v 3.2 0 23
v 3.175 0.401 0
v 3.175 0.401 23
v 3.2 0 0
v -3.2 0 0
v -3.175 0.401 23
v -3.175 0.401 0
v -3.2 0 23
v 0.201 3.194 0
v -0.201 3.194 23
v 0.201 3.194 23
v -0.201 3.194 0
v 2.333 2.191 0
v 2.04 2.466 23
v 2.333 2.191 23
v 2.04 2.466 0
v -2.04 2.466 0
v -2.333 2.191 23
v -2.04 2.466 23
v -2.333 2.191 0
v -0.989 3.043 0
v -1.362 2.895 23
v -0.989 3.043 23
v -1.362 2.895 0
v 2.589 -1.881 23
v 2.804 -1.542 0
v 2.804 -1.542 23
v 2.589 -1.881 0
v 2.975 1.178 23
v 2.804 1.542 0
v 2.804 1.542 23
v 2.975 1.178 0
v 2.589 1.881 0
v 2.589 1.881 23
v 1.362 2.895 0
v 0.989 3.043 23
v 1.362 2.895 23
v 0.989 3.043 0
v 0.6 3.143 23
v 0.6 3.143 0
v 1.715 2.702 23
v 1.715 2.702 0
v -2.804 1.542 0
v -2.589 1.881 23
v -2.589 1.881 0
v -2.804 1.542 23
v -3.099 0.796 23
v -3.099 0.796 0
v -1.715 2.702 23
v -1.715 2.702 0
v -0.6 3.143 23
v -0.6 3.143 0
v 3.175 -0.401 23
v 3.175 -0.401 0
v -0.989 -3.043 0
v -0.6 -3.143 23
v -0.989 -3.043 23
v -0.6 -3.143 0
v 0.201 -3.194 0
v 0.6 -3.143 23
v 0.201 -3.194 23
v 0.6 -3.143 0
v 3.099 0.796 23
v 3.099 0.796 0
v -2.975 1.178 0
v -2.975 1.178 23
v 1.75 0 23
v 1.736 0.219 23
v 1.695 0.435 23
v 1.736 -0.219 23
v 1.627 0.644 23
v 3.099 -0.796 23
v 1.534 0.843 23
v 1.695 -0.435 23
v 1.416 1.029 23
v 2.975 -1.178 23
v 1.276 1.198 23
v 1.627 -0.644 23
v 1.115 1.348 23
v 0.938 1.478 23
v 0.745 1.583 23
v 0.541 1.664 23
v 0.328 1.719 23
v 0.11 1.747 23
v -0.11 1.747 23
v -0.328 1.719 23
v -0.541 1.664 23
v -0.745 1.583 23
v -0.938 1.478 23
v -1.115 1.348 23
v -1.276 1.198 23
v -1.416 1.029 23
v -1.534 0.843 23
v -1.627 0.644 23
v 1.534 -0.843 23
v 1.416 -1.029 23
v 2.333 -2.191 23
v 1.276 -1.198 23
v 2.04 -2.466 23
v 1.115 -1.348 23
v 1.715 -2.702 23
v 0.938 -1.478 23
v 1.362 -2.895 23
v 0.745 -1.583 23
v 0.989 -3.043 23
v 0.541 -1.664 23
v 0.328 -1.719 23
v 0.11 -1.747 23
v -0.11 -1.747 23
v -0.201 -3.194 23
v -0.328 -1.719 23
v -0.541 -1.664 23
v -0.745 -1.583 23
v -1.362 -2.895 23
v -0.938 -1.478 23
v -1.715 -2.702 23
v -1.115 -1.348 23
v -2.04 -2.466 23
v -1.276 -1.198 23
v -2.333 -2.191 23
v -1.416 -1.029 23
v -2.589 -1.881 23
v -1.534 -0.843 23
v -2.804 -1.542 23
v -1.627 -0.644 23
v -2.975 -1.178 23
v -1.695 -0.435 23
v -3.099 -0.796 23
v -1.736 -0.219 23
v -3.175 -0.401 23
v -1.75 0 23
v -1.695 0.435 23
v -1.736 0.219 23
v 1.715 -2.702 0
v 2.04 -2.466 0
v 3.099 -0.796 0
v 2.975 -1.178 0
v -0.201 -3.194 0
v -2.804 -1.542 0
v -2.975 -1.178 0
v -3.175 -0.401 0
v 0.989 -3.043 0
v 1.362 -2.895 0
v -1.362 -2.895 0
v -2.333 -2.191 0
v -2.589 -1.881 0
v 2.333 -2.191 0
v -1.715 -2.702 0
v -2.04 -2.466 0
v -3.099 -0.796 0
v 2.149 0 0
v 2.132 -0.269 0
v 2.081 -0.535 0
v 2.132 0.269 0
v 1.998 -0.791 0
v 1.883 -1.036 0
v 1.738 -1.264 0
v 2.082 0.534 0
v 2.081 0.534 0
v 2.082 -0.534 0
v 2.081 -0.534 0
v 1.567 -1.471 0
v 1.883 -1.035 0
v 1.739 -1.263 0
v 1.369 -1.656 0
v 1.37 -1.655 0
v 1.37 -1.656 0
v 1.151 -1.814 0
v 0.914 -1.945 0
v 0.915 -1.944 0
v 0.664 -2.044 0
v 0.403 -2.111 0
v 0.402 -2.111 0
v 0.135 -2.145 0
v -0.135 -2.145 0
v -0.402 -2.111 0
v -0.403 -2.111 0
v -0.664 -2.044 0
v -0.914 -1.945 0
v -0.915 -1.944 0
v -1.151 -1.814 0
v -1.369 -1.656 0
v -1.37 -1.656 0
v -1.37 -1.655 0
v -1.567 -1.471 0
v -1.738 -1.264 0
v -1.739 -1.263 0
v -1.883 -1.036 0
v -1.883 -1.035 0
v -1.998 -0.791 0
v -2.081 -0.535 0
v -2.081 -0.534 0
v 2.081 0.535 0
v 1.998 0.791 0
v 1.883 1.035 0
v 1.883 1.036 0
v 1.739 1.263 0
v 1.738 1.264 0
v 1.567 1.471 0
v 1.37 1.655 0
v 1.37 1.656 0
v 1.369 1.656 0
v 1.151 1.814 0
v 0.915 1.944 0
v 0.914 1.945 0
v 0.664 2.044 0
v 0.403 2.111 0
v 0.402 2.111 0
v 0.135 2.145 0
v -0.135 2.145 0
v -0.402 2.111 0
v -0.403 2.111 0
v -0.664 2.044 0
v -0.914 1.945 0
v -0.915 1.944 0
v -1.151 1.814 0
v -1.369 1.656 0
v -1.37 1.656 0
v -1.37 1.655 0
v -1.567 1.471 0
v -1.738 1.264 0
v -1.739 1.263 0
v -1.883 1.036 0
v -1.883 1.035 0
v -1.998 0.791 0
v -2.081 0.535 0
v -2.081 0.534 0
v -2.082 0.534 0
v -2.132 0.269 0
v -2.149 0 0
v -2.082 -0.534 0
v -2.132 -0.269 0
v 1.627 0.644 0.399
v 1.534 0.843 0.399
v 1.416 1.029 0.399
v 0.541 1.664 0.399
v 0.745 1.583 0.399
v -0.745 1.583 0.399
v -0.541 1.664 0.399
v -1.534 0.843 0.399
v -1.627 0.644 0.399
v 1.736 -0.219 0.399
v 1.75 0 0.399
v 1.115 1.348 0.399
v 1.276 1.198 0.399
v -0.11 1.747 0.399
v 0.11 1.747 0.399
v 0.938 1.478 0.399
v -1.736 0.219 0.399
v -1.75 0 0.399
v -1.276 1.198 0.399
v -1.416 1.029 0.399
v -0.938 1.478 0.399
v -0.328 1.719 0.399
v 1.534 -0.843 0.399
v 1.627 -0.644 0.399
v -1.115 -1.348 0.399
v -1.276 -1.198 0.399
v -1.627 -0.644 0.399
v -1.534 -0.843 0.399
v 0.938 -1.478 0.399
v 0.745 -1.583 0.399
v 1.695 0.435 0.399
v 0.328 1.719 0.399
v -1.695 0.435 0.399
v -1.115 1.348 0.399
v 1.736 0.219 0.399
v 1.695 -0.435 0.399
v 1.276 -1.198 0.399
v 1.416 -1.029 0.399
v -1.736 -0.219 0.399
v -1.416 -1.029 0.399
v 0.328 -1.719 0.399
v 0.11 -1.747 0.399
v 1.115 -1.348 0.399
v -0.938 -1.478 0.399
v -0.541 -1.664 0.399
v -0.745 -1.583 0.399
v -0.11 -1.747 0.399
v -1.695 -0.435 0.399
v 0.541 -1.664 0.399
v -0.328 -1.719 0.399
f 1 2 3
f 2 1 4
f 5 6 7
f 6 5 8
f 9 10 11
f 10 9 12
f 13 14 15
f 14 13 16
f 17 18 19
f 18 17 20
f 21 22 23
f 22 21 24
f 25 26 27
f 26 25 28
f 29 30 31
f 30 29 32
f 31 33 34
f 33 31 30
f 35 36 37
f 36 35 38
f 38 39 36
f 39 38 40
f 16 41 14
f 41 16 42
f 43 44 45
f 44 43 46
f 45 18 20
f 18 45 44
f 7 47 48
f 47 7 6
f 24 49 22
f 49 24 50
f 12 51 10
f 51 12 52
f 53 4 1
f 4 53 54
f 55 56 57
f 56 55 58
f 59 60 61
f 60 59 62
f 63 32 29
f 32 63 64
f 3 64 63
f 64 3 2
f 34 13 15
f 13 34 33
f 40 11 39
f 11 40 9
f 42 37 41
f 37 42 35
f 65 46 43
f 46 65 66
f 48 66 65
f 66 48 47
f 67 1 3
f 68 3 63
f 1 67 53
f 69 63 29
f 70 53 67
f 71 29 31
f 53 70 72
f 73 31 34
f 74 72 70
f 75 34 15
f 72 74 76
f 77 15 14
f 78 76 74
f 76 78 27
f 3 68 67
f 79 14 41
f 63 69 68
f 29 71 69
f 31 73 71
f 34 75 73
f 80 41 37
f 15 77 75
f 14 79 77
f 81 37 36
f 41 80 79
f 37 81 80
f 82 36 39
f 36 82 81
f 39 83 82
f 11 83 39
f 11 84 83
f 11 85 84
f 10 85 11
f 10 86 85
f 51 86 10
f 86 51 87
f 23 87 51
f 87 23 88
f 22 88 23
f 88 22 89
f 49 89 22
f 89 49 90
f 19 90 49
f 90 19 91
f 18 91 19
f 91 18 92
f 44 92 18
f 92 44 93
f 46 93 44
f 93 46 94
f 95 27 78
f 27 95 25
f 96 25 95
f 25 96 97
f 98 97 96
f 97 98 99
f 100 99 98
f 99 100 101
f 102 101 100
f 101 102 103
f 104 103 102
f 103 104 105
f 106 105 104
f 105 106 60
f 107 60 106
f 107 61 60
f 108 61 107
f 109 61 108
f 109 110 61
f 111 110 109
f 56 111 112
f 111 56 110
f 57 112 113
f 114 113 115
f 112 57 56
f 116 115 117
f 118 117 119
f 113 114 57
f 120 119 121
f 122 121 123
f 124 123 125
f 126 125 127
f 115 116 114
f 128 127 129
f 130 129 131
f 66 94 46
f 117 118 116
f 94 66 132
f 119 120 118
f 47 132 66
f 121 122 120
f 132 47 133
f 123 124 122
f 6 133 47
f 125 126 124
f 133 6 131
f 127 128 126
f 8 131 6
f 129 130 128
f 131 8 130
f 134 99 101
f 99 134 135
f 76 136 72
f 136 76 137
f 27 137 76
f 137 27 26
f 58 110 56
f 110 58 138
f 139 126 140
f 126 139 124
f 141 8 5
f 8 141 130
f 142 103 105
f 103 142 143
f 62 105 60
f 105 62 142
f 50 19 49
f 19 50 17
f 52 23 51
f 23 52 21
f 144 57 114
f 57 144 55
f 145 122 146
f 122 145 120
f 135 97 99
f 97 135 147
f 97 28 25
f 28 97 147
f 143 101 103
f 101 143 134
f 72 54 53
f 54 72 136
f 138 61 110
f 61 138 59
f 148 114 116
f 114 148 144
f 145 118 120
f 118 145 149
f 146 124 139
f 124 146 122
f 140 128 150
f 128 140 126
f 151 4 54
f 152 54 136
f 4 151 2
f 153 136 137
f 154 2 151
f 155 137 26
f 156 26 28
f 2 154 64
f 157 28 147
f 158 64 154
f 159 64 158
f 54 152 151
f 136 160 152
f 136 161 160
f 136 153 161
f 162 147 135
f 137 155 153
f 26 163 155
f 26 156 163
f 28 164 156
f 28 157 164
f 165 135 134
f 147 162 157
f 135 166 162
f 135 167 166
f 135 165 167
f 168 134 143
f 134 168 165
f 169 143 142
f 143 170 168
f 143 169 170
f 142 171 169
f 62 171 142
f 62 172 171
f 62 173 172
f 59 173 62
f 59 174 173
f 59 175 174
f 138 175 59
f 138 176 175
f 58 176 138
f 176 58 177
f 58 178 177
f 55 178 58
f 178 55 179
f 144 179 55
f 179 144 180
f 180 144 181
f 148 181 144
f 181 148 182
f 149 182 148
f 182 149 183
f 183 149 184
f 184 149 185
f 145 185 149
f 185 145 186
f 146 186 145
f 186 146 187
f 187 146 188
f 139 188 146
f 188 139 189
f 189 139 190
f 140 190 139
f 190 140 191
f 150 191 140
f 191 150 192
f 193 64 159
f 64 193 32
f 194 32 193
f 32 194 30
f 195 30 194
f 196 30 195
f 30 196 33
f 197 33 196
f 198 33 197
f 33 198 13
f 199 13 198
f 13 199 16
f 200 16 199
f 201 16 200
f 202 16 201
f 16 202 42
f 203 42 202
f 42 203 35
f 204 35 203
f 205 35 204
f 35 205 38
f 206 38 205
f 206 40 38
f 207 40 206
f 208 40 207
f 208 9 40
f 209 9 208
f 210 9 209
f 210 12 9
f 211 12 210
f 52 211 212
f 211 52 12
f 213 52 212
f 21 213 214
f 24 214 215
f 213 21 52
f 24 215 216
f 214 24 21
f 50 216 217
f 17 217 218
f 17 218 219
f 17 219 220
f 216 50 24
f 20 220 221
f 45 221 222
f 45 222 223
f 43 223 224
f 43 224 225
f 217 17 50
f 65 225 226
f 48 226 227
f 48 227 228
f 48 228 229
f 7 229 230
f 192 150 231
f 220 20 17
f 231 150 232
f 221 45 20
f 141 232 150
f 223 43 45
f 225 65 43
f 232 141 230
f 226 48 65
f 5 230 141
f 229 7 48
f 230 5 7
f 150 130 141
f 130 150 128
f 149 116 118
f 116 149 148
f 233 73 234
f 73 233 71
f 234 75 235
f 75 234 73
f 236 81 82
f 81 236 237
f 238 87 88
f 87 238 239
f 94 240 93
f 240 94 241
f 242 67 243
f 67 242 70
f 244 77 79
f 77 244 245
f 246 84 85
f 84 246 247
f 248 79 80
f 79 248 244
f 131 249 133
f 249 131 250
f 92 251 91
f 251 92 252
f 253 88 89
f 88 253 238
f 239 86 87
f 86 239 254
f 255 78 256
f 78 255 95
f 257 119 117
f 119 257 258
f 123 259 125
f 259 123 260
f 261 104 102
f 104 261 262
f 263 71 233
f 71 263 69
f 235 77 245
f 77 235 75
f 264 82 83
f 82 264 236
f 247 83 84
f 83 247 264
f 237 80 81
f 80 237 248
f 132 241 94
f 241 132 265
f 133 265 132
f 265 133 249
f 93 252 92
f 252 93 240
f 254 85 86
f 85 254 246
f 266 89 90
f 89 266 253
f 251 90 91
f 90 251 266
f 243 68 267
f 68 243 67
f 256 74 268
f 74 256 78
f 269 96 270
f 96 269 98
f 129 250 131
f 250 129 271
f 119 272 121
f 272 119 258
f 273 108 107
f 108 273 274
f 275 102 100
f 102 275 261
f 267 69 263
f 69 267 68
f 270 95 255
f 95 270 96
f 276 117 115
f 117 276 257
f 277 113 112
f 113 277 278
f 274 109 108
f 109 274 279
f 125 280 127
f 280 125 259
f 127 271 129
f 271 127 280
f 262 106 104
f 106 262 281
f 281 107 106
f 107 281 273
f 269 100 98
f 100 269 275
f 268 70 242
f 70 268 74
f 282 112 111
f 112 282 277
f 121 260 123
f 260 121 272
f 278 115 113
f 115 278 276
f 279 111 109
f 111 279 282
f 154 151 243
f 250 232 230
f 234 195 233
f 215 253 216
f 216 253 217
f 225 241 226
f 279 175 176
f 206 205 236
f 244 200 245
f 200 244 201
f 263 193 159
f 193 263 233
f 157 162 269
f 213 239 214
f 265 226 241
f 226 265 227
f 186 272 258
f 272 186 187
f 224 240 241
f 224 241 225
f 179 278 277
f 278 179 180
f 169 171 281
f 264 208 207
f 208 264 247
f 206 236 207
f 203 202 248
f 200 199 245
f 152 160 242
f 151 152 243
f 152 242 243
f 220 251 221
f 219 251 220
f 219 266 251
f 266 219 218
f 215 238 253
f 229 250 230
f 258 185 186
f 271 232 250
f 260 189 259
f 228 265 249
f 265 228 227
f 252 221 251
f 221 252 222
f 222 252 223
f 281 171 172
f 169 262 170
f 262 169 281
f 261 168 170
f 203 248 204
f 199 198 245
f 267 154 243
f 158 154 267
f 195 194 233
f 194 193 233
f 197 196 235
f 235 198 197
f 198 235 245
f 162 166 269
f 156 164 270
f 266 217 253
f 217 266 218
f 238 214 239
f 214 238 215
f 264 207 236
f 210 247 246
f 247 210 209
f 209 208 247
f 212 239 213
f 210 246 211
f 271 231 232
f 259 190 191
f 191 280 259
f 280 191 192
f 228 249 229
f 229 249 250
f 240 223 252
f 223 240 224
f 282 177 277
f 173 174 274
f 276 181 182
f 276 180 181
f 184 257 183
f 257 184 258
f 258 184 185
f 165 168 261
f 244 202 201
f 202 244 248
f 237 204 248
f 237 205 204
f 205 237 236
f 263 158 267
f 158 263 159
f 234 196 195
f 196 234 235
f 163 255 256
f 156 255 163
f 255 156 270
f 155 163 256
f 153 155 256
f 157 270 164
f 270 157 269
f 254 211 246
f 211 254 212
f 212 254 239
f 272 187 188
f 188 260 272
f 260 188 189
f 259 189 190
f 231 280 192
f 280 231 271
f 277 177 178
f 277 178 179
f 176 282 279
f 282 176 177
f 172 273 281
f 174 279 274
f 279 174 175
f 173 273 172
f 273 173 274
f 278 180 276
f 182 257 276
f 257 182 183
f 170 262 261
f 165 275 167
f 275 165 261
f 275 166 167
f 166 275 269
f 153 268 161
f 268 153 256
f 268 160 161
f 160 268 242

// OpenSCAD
// height in mm
height = 23;

// inner diameter in mm
inner_diameter = 1.75*2;

// outer diameter in mm
outer_diameter = 3.2*2;

// inner chamfer at bottom in mm (to avoid 'elephant foot' when 3d printing)
chamfer_inner = 0.4;

// inner chamfer at bottom in mm (to avoid 'elephant foot' when 3d printing)
chamfer_outer = 0.0;

/* [Hidden] */

inner_radius = inner_diameter/2;
outer_radius = outer_diameter/2;
eps = 0.001;

$fn = 50;

difference() 
{
	cylinder(h=height, r=outer_radius);
	translate([0,0,-eps]) cylinder(h=height+1, r=inner_radius);

	translate([0,0,-eps]) cylinder(h=chamfer_inner, r1=inner_radius+chamfer_inner, r2=inner_radius);
    
    translate([0,0,-eps]) difference()
    {
        cylinder(h=chamfer_outer, r=outer_radius);
        translate([0,0,-eps]) cylinder(h=chamfer_outer, r1=outer_radius-chamfer_outer, r2=outer_radius+eps);
    }
}
